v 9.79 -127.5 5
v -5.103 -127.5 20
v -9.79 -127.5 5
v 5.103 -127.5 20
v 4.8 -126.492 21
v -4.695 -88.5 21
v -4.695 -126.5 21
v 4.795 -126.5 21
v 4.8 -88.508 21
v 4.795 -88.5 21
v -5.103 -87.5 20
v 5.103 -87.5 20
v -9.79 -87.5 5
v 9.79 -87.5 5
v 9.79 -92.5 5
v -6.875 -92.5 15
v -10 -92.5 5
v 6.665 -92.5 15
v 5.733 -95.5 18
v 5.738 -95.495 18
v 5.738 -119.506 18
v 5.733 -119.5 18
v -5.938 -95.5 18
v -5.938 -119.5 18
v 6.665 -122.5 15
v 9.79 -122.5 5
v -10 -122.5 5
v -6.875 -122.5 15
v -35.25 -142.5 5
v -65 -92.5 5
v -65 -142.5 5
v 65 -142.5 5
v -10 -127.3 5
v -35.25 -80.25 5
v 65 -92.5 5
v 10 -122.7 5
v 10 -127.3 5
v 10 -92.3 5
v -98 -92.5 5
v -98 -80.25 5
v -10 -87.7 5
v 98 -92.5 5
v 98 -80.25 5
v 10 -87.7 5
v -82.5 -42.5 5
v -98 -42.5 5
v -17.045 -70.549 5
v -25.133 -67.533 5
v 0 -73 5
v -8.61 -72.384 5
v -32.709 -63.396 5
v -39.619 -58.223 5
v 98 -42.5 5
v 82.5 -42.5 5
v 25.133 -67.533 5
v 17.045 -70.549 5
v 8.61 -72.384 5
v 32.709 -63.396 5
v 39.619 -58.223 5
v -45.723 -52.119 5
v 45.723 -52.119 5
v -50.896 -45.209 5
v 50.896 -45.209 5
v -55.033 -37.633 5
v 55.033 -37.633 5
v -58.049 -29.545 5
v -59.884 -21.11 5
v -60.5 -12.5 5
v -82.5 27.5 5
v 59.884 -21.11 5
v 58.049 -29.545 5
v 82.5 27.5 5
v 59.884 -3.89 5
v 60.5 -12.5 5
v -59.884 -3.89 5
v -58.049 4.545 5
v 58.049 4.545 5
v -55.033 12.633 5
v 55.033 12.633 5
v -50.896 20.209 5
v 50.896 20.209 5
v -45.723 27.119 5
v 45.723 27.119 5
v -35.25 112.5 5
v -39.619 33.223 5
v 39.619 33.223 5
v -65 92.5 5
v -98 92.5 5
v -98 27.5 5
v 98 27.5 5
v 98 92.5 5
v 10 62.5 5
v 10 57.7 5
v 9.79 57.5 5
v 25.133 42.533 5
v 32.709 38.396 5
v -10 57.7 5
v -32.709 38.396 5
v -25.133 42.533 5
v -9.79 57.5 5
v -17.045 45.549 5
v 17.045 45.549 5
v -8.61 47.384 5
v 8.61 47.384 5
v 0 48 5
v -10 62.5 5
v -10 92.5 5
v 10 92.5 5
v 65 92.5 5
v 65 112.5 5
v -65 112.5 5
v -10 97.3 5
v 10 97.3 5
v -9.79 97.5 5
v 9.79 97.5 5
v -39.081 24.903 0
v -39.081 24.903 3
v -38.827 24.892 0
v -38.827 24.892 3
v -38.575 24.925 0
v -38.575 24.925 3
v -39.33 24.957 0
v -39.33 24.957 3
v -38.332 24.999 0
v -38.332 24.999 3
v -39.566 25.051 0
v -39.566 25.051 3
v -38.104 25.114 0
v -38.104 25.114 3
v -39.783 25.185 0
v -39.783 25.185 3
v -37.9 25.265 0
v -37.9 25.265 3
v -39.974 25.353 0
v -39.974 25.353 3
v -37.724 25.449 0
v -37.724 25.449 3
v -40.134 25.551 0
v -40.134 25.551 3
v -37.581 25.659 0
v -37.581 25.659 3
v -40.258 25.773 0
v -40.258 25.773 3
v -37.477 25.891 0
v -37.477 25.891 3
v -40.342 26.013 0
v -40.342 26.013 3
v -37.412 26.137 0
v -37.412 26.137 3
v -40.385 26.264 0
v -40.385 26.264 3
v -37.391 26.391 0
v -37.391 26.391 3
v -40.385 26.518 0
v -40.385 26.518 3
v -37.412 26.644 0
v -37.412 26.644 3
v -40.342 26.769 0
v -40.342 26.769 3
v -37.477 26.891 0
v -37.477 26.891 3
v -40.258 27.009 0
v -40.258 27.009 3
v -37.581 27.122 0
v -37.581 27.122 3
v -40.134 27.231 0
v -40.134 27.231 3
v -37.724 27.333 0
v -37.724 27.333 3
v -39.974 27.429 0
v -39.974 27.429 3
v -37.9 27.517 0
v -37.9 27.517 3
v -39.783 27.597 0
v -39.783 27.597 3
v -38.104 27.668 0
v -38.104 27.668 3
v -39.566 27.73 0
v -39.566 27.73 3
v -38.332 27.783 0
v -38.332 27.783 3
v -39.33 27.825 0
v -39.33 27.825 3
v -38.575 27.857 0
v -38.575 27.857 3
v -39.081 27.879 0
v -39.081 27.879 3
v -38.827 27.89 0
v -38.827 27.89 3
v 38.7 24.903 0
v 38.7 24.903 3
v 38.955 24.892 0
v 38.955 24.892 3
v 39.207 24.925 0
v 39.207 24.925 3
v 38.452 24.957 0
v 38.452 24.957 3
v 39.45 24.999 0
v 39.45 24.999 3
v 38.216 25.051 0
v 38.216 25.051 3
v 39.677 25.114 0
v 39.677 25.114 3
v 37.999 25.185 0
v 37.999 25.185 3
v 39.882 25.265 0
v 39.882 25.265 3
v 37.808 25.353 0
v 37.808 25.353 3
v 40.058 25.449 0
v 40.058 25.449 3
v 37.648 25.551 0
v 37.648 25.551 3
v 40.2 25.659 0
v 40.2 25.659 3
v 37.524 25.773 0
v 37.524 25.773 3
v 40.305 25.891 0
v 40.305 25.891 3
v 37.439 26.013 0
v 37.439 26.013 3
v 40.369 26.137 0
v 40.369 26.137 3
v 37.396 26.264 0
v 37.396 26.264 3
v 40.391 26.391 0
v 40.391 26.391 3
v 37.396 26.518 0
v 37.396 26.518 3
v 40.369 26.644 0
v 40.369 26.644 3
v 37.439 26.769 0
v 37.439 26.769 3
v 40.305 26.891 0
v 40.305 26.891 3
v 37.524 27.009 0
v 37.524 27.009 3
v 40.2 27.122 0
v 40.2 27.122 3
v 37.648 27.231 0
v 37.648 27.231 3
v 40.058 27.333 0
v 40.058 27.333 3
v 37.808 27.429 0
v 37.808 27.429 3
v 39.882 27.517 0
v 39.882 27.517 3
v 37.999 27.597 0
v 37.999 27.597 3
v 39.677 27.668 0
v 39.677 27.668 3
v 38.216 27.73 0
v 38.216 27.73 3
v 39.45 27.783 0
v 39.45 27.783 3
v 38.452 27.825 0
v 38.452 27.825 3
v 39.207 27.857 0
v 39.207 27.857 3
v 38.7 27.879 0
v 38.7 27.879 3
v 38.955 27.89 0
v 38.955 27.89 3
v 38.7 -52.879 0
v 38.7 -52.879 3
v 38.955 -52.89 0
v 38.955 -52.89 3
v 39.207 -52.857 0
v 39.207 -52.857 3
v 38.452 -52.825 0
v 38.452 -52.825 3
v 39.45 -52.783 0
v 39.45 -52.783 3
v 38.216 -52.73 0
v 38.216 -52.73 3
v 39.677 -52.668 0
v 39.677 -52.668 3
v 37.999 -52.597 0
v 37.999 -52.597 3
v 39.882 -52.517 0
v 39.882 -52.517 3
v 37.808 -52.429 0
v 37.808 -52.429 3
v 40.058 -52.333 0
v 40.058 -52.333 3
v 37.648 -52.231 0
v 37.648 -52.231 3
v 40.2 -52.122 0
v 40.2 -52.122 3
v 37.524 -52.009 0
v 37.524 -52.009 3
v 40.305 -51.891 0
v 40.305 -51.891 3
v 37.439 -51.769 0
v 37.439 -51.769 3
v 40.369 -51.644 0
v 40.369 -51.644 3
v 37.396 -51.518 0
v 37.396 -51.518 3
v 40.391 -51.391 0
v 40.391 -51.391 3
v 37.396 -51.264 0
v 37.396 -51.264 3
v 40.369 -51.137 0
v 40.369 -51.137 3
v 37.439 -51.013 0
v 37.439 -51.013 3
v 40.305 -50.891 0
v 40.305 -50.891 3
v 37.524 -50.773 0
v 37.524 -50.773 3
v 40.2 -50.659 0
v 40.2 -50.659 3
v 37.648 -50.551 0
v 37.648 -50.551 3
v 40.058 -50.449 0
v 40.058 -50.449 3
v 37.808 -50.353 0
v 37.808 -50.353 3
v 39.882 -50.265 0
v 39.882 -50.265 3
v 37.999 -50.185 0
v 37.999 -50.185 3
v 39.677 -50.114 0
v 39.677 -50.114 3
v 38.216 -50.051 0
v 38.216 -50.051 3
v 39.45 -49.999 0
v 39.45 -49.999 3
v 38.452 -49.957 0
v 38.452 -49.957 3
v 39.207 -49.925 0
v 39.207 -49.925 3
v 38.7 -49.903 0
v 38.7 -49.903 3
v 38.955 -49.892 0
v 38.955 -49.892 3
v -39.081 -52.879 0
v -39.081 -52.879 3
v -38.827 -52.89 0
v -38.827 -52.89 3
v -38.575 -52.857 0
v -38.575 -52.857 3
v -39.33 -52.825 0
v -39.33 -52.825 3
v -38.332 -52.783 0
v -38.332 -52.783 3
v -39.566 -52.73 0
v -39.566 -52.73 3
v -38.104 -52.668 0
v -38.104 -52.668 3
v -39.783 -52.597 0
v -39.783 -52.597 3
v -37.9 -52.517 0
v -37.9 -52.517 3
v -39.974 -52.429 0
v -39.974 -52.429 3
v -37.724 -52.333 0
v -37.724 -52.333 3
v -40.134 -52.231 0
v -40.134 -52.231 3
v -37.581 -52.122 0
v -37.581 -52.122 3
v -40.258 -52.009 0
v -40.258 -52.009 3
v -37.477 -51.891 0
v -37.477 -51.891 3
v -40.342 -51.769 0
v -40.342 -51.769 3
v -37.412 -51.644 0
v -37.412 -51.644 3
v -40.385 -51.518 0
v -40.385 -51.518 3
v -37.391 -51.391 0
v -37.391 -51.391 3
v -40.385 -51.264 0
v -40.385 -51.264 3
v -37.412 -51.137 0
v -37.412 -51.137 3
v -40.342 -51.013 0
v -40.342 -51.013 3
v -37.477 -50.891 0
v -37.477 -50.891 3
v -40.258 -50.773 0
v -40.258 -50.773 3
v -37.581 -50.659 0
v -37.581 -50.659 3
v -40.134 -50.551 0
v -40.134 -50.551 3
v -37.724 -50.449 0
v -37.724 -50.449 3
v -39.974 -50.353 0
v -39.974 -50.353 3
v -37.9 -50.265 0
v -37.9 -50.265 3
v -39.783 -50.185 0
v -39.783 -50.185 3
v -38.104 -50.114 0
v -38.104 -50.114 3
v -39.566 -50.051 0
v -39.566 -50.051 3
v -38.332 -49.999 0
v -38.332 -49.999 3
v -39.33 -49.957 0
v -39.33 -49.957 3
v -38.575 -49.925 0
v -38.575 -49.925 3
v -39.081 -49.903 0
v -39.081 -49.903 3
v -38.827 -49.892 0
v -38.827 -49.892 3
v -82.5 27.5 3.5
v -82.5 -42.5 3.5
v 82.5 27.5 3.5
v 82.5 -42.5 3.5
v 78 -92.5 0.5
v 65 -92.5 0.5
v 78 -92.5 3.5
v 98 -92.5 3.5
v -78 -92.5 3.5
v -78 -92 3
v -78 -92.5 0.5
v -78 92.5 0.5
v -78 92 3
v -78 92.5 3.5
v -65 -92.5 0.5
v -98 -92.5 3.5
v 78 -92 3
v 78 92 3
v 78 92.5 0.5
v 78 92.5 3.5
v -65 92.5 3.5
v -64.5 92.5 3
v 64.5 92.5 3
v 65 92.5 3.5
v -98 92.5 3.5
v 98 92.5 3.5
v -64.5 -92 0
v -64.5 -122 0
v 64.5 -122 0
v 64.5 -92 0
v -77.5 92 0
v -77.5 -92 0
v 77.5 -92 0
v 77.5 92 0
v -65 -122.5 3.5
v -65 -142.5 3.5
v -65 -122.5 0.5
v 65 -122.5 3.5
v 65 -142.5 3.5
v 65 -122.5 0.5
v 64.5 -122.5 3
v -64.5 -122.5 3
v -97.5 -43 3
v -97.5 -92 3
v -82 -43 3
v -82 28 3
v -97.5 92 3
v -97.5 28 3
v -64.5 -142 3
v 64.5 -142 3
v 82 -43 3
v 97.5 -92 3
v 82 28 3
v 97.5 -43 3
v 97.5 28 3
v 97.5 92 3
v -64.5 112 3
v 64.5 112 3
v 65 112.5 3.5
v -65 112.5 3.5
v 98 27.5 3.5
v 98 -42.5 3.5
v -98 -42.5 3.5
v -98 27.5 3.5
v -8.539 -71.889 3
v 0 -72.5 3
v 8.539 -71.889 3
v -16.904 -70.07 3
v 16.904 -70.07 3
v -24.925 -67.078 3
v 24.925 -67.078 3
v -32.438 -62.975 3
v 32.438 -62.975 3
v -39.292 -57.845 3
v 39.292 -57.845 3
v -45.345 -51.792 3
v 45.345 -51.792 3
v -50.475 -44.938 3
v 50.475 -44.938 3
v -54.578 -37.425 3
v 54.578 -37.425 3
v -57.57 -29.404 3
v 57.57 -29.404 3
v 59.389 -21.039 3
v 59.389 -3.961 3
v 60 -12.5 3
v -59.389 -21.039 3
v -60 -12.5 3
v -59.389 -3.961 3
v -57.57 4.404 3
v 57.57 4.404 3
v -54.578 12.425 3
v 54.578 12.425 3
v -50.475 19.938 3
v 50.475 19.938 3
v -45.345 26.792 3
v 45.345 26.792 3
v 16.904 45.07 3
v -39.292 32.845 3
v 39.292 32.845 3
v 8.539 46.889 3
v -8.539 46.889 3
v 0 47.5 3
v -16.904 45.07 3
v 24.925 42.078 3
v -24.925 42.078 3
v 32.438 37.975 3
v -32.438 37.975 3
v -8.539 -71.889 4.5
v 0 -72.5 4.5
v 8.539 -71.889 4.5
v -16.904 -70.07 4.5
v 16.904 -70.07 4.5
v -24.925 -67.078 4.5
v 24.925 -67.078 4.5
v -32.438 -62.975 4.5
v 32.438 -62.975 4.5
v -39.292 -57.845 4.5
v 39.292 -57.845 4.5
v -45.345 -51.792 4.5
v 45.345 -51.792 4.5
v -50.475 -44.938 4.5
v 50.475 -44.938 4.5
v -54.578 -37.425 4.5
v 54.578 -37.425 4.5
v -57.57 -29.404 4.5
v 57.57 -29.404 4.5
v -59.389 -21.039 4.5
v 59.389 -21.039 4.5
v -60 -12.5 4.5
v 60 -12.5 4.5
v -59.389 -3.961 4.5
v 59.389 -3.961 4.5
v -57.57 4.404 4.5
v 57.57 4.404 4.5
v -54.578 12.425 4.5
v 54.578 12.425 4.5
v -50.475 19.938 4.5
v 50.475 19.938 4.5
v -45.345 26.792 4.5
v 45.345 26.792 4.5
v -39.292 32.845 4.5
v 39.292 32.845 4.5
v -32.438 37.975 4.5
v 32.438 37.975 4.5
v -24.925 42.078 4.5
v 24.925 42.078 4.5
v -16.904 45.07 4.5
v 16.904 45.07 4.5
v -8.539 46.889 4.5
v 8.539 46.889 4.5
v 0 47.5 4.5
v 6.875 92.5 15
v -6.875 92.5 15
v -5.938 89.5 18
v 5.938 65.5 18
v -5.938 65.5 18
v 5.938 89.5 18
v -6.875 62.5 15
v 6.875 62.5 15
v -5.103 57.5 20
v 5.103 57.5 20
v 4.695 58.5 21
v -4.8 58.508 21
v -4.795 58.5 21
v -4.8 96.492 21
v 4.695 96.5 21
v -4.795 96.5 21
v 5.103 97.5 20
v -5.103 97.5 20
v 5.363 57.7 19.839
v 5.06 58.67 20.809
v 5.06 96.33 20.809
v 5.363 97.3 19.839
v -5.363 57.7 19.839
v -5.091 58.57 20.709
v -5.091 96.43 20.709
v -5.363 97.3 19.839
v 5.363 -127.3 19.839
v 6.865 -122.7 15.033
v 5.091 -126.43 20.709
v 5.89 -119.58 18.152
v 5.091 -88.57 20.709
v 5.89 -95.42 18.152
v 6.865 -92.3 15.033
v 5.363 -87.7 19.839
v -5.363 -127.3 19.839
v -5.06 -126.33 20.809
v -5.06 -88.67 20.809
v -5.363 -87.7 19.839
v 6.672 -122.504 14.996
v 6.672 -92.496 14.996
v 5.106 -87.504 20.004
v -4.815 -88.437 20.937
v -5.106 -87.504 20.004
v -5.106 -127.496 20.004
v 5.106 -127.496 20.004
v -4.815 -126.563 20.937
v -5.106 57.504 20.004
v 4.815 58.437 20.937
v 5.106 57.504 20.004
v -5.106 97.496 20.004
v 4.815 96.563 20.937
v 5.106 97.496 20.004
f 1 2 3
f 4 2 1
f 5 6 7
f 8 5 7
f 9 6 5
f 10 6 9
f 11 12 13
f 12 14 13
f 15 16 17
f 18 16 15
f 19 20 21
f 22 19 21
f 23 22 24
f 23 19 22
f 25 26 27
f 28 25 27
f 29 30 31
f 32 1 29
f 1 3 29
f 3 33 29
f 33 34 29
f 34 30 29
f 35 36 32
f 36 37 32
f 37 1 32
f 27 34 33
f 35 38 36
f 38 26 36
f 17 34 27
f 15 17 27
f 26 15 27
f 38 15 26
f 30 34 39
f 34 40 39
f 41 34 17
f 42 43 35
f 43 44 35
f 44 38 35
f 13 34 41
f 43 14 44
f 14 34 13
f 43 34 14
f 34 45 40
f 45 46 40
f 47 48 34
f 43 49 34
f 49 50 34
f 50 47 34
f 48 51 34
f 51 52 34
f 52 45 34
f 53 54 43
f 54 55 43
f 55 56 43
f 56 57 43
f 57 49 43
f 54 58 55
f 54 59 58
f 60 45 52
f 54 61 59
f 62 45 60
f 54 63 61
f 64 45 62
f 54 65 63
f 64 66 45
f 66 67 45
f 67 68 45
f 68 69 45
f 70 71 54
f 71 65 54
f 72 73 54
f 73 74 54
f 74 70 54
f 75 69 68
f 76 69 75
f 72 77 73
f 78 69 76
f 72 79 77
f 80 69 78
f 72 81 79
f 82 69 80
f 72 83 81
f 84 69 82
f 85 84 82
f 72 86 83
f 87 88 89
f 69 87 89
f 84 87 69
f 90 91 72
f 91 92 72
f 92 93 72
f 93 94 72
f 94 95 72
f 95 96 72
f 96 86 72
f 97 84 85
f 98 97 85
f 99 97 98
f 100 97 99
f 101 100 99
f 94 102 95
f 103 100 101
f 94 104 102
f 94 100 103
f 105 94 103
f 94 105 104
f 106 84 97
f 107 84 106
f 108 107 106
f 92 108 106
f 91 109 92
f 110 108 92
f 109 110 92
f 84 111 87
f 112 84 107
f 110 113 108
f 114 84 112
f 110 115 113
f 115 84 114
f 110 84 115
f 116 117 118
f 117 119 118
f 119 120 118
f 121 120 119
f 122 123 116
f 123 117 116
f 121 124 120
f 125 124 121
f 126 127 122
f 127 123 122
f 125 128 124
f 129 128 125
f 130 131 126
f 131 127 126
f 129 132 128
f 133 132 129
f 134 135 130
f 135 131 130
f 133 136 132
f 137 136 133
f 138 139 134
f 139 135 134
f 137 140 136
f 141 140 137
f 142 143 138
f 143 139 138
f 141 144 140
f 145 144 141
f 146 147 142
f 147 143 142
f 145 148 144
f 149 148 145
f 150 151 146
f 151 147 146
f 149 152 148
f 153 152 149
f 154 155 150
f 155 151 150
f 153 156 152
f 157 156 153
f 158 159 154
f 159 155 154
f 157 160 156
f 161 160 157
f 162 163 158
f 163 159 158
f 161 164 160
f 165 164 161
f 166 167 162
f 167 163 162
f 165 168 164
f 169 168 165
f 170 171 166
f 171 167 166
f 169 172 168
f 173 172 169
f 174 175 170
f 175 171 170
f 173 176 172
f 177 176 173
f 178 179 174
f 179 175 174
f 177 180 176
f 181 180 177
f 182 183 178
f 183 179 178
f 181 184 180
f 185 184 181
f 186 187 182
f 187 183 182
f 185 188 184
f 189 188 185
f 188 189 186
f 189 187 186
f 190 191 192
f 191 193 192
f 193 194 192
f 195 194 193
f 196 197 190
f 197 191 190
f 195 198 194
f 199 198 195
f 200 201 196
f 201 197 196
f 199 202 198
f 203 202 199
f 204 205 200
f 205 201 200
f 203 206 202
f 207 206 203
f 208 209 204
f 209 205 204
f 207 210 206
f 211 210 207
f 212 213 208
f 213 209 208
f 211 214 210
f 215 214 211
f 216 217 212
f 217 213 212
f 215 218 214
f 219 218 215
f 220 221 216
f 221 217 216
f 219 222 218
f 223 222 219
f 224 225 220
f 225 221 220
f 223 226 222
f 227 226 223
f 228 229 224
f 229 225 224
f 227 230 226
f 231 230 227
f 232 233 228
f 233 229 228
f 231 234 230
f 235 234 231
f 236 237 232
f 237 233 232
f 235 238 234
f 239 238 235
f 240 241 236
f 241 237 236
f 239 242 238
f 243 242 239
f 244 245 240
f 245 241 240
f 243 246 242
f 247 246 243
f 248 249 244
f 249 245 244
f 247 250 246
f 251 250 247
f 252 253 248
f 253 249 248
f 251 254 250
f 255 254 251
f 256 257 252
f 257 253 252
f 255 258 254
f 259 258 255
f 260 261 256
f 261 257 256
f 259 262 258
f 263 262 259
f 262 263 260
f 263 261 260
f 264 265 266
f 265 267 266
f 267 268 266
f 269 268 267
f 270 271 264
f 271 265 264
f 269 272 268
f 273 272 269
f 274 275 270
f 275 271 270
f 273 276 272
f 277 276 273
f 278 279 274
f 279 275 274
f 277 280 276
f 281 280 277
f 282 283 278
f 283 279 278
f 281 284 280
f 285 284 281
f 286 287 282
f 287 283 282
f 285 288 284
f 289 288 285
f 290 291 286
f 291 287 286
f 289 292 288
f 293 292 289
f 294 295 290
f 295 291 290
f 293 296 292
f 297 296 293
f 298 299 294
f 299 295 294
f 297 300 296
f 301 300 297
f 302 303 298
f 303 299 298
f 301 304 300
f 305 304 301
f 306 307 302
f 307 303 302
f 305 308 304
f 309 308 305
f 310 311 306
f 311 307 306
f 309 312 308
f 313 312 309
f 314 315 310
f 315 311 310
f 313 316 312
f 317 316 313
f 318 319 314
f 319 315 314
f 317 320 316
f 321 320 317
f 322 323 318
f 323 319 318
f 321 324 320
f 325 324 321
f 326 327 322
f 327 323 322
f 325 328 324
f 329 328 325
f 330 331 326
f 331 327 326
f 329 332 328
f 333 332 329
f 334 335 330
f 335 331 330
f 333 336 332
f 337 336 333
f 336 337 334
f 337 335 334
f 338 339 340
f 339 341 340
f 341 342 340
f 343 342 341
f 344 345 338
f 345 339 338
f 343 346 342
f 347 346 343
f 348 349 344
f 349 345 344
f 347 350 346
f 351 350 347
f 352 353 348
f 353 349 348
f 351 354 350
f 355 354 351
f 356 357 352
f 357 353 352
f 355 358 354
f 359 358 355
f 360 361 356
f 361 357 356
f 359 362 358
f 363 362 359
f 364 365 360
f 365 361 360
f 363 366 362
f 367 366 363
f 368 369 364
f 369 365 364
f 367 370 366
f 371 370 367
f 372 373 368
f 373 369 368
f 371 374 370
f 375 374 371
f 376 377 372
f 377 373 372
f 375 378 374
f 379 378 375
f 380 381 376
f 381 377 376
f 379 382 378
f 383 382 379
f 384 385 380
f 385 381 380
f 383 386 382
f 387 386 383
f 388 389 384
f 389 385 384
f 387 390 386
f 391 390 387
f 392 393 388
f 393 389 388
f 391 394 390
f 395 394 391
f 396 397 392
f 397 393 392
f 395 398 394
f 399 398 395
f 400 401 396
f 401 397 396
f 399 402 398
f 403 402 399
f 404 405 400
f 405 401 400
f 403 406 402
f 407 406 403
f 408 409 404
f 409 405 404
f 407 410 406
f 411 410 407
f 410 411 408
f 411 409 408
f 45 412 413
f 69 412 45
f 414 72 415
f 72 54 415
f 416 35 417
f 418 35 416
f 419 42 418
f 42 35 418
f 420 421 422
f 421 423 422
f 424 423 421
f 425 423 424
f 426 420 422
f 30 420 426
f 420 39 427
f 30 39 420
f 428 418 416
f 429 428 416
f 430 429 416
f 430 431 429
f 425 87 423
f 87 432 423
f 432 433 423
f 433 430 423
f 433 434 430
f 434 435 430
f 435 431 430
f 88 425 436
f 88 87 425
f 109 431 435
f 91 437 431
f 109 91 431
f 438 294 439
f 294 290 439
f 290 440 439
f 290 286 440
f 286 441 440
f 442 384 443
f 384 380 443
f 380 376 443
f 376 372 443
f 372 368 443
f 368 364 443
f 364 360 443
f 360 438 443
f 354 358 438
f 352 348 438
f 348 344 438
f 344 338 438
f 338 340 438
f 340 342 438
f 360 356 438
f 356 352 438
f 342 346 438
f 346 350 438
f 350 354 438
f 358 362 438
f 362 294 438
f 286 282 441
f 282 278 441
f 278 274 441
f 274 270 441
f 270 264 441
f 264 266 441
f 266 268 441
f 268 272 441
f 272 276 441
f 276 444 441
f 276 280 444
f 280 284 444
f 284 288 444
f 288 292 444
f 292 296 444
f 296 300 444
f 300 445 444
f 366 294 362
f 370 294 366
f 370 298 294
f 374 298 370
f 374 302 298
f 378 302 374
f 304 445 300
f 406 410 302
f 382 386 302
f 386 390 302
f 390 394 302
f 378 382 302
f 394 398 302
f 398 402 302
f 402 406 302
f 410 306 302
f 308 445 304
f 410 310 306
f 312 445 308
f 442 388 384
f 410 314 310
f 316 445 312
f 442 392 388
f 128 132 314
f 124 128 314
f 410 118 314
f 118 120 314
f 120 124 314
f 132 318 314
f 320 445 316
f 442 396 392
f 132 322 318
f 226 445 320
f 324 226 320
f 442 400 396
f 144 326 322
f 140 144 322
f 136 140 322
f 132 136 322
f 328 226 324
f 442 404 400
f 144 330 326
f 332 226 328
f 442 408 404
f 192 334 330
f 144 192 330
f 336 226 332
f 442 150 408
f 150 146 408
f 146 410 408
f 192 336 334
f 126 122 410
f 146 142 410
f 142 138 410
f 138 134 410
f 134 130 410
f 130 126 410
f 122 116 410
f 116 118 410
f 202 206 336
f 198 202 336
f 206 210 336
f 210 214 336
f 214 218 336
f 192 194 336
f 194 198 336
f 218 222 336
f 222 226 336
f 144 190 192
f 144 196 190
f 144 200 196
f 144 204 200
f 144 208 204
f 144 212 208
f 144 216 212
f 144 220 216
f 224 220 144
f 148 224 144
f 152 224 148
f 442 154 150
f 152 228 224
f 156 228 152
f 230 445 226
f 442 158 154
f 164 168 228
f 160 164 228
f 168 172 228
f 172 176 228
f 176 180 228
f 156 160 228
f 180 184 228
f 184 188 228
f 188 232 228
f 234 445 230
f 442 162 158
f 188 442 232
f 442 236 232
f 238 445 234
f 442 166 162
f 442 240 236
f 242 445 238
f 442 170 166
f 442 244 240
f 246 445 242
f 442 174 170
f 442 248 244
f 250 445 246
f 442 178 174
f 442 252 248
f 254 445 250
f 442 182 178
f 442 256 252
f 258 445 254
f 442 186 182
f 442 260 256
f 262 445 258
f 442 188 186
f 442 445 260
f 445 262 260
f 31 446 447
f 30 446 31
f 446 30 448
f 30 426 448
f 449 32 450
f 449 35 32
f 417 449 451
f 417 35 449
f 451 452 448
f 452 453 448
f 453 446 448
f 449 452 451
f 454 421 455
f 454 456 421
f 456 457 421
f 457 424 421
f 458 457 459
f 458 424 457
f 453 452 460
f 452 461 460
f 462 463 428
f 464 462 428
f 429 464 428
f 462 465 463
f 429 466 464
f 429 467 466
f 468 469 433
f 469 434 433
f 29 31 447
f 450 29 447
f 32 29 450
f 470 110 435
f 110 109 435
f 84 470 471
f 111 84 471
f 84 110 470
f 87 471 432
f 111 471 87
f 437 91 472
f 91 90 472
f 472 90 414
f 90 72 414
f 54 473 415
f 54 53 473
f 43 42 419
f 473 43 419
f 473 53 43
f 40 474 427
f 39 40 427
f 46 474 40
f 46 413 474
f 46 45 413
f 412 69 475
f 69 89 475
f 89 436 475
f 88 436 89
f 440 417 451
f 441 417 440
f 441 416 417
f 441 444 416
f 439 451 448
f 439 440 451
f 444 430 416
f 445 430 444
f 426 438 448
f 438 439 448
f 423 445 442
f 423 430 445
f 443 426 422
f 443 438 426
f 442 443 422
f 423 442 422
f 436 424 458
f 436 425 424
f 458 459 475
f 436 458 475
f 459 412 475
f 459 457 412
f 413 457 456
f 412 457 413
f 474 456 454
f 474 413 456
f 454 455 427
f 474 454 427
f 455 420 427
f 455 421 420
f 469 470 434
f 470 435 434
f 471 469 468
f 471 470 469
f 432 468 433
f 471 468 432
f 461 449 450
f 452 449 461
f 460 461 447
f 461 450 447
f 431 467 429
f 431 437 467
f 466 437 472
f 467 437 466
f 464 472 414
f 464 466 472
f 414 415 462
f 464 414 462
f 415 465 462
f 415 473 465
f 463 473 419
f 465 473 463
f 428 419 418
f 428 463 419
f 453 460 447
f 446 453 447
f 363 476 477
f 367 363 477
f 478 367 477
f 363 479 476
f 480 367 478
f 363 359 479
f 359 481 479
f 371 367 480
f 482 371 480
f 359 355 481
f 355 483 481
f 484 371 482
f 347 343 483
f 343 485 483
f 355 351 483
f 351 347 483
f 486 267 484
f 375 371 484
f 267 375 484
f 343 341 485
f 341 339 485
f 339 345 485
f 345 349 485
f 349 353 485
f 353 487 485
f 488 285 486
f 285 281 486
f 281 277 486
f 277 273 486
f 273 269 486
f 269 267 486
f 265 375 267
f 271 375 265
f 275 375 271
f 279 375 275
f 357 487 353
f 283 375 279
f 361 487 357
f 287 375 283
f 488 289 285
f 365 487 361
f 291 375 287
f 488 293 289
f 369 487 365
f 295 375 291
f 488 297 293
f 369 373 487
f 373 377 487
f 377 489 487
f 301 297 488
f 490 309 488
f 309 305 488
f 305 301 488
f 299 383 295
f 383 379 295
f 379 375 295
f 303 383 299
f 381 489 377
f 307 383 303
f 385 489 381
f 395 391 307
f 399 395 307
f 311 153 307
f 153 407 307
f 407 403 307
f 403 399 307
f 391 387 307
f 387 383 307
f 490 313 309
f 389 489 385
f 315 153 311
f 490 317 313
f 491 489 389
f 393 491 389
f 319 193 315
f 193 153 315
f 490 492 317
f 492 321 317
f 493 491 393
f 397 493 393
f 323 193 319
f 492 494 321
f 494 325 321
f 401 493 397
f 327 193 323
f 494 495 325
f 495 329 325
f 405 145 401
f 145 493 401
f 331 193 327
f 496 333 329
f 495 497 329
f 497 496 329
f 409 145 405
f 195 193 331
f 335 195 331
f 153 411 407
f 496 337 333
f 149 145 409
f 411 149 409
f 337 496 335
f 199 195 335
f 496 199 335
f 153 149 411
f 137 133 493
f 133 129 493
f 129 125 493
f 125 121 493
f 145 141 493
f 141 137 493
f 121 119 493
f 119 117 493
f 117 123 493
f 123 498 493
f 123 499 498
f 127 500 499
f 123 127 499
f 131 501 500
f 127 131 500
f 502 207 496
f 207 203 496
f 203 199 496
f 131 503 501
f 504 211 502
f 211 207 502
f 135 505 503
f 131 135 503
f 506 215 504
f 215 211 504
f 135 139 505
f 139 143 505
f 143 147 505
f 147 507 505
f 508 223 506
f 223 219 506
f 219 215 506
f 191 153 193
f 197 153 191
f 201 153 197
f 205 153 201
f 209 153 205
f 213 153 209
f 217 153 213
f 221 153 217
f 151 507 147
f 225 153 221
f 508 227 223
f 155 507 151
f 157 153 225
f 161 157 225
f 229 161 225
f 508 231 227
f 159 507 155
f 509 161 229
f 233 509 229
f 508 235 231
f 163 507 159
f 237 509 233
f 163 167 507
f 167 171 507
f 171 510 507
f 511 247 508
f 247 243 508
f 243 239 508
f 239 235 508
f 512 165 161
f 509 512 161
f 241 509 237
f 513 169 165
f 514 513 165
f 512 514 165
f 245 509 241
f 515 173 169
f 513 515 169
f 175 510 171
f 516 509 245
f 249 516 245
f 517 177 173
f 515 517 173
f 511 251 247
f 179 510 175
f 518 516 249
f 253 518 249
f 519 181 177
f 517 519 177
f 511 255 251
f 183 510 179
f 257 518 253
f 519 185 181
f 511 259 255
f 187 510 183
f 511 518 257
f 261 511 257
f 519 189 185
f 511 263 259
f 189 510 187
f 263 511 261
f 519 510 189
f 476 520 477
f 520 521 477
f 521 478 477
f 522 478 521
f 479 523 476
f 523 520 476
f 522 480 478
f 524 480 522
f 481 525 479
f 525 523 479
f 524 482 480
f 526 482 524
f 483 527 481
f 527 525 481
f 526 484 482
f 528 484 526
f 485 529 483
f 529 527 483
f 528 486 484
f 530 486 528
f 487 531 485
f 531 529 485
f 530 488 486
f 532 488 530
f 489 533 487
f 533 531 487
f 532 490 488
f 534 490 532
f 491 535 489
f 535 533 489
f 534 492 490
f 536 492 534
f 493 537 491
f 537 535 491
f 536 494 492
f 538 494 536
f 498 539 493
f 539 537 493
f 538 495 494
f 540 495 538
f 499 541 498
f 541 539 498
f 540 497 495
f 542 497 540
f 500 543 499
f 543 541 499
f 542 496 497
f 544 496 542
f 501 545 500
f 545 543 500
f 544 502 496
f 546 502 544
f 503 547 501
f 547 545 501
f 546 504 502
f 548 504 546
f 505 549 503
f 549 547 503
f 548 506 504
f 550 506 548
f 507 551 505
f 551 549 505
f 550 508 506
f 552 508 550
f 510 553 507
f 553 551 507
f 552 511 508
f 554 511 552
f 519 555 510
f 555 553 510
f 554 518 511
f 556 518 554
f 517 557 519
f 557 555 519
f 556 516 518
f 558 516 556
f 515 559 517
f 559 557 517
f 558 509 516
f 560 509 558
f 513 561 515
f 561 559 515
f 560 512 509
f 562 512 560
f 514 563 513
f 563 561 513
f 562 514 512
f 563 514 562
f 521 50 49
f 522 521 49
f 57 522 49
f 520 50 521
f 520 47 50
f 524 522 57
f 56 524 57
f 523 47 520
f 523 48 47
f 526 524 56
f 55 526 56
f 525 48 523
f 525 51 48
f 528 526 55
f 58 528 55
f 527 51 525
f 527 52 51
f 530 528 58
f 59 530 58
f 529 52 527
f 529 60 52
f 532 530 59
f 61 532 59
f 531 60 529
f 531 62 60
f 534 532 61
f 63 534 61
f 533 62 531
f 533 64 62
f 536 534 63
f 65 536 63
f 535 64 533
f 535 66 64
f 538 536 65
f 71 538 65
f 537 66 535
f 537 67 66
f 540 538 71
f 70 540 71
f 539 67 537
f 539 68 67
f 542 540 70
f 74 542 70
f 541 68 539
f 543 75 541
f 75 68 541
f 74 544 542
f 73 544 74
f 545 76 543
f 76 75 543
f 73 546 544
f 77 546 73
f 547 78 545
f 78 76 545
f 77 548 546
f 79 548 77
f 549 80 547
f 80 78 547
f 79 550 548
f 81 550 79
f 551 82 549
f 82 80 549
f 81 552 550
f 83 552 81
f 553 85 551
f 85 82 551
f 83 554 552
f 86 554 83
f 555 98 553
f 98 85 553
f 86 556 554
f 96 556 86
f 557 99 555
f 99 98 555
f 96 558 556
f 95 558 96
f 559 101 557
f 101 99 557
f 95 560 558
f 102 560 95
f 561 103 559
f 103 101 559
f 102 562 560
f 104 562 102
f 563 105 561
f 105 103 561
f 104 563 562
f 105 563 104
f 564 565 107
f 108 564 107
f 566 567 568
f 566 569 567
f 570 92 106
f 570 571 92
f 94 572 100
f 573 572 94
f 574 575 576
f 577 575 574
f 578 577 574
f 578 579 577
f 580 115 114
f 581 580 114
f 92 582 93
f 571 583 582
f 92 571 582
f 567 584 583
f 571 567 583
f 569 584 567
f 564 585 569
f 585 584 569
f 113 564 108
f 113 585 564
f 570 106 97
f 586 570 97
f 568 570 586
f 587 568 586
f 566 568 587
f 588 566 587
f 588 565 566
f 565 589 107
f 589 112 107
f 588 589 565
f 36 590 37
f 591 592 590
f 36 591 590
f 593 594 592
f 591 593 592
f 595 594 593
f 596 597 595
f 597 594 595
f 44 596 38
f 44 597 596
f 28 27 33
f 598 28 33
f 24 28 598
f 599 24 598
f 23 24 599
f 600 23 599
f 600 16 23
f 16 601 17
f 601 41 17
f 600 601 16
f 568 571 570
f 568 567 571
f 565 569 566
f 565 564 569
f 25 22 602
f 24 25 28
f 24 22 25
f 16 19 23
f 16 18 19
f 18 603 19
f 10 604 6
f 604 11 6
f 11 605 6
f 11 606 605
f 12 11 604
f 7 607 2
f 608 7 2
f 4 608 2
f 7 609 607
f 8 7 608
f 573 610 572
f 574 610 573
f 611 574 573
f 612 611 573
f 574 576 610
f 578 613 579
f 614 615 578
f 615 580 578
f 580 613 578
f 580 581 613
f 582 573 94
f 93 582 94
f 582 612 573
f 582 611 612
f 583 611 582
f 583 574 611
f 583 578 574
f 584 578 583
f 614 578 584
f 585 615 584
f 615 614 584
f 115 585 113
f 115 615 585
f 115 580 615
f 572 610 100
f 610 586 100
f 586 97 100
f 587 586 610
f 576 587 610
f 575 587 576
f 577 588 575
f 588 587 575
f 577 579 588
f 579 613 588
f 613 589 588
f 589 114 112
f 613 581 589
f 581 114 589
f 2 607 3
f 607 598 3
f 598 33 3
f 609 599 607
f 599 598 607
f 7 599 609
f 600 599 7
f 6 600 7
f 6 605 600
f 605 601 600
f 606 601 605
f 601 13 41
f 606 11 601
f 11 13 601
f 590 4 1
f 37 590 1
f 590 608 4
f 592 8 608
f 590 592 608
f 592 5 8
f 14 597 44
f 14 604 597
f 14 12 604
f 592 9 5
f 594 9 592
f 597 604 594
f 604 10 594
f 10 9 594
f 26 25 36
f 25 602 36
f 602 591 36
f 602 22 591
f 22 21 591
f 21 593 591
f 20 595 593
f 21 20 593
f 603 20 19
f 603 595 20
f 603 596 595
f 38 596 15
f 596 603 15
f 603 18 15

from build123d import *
from OCP.BRepFilletAPI import BRepFilletAPI_MakeChamfer

# Parameters (mm, degrees)
SKETCH_1_W          = 156
SKETCH_1_H          = 185
EXTRUDE_1_DEPTH     = 3
SKETCH_2_W          = 130
SKETCH_2_H          = 30
EXTRUDE_2_DEPTH     = 3
EXTRUDE_3_DEPTH     = 2
SKETCH_4_W          = 15.5
SKETCH_4_H          = 50
SKETCH_4_H_2        = 65
EXTRUDE_4_DEPTH     = 2
SKETCH_5_R          = 1.5
CUT_EXTRUDE_1_DEPTH = 174.018062641
CHAMFER_1_SIZE      = 0.5
CHAMFER_2_SIZE      = 0.5
CHAMFER_3_SIZE      = 0.5
SKETCH_6_R          = 60
CUT_EXTRUDE_2_DEPTH = 2
CHAMFER_4_SIZE      = 0.5
EXTRUDE_5_DEPTH     = 10
CUT_EXTRUDE_3_DEPTH = 261.086524065
CHAMFER_5_SIZE      = 3
CHAMFER_6_SIZE      = 1
CHAMFER_7_SIZE      = 0.2
CHAMFER_7_SIZE2     = 0.159648139
CHAMFER_7_SIZE2_2   = 0.168291059
CHAMFER_7_SIZE2_3   = 0.304782811
CHAMFER_7_SIZE2_4   = 0.260894728


with BuildPart() as part:
    # 草图1 → 凸台-拉伸1 (new body)
    with BuildSketch(Plane.XY):
        Rectangle(SKETCH_1_W, SKETCH_1_H)
    extrude(amount=EXTRUDE_1_DEPTH)

    # 草图2 → 凸台-拉伸2 (add)
    with BuildSketch(Plane.XY.offset(3)):
        with Locations((0, -107.5)):
            Rectangle(SKETCH_2_W, SKETCH_2_H)
    extrude(amount=-EXTRUDE_2_DEPTH)

    # 草图3 → 凸台-拉伸3 (add)
    with BuildSketch(Plane.XY.offset(3)):
        Polygon((-82.5, 92.5), (-65, 92.5), (-65, 112.5), (65, 112.5), (65, 92.5), (82.5, 92.5), (82.5, -92.5), (65, -92.5), (65, -142.5), (-65, -142.5), (-65, -92.5), (-82.5, -92.5), align=None)
    extrude(amount=EXTRUDE_3_DEPTH)

    # 草图4 → 凸台-拉伸4 (add)
    with BuildSketch(Plane.XY.offset(5)):
        with Locations((-90.25, -67.5)):
            Rectangle(SKETCH_4_W, SKETCH_4_H)
        with Locations((-90.25, 60)):
            Rectangle(SKETCH_4_W, SKETCH_4_H_2)
        with Locations((90.25, 60)):
            Rectangle(SKETCH_4_W, SKETCH_4_H_2)
        with Locations((90.25, -67.5)):
            Rectangle(SKETCH_4_W, SKETCH_4_H)
    extrude(amount=-EXTRUDE_4_DEPTH)

    # 草图5 → 切除-拉伸1 (cut, through all)
    with BuildSketch(Plane.XY.offset(5)):
        with Locations((-38.890872965, 26.390872965)):
            Circle(SKETCH_5_R)
        with Locations((38.890872965, 26.390872965)):
            Circle(SKETCH_5_R)
        with Locations((38.890872965, -51.390872965)):
            Circle(SKETCH_5_R)
        with Locations((-38.890872965, -51.390872965)):
            Circle(SKETCH_5_R)
    extrude(amount=-CUT_EXTRUDE_1_DEPTH, mode=Mode.SUBTRACT)

    # 倒角1
    chamfer_1_edges = [part.edges().sort_by_distance(p)[0] for p in [
        (71.5, -92.5, 0),
        (-65, -107.5, 0),
        (65, -107.5, 0),
        (0, -122.5, 0),
        (0, 92.5, 0),
        (78, 0, 0),
        (-71.5, -92.5, 0),
        (-78, 0, 0),
    ]]
    chamfer(chamfer_1_edges, length=CHAMFER_1_SIZE)

    # 倒角2
    chamfer_2_edges = [part.edges().sort_by_distance(p)[0] for p in [
        (-88, 92.5, 3),
        (88, 92.5, 3),
        (-82.5, -7.5, 3),
        (-90.25, 27.5, 3),
        (-98, 60, 3),
        (-88, -92.5, 3),
        (-98, -67.5, 3),
        (-90.25, -42.5, 3),
        (98, 60, 3),
        (90.25, 27.5, 3),
        (82.5, -7.5, 3),
        (90.25, -42.5, 3),
        (98, -67.5, 3),
        (88, -92.5, 3),
        (-65, 102.5, 3),
        (65, 102.5, 3),
        (0, 112.5, 3),
        (0, -142.5, 3),
        (65, -132.5, 3),
    ]]
    chamfer(chamfer_2_edges, length=CHAMFER_2_SIZE)

    # 倒角3
    chamfer_3_edges = [part.edges().sort_by_distance(p)[0] for p in [
        (-65, -132.25, 3),
    ]]
    chamfer(chamfer_3_edges, length=CHAMFER_3_SIZE)

    # 草图6 → 切除-拉伸2 (cut)
    with BuildSketch(Plane.XY.offset(5)):
        with Locations((0, -12.5)):
            Circle(SKETCH_6_R)
    extrude(amount=-CUT_EXTRUDE_2_DEPTH, mode=Mode.SUBTRACT)

    # 倒角4
    chamfer_4_edges = [part.edges().sort_by_distance(p)[0] for p in [
        (-60, -12.5, 5),
    ]]
    chamfer(chamfer_4_edges, length=CHAMFER_4_SIZE)

    # 草图7 → 凸台-拉伸5 (add, symmetric)
    with BuildSketch(Plane(origin=(0, 0, 0), x_dir=(0, 0, -1), z_dir=(1, 0, 0))):
        Polygon((-5, 97.5), (-21, 97.5), (-21, 57.5), (-5, 57.5), (-5, 62.5), (-18, 62.5), (-18, 92.5), (-5, 92.5), align=None)
    extrude_5 = extrude(amount=EXTRUDE_5_DEPTH, both=True)

    # 草图8 → 切除-拉伸3 (cut, through all)
    with BuildSketch(Plane(origin=(0, 97.5, 0), x_dir=(1, 0, 0), z_dir=(0, 1, 0))):
        Polygon((-10, -5), (-5, -21), (-10, -21), align=None)
        Polygon((10, -5), (10, -21), (5, -21), align=None)
    cut_extrude_3 = extrude(amount=-CUT_EXTRUDE_3_DEPTH, mode=Mode.SUBTRACT)

    # 镜向2: 凸台-拉伸5, 切除-拉伸3 across plane
    add(extrude_5.mirror(Plane(origin=(0, -15, 0), x_dir=(0, 0, 1), z_dir=(0, -1, 0))))
    add(cut_extrude_3.mirror(Plane(origin=(0, -15, 0), x_dir=(0, 0, 1), z_dir=(0, -1, 0))), mode=Mode.SUBTRACT)

    # 倒角5
    chamfer_5_edges = [part.edges().sort_by_distance(p)[0] for p in [
        (0, 62.5, 18),
        (0, 92.5, 18),
        (0, -122.5, 18),
        (0, -92.5, 18),
    ]]
    chamfer(chamfer_5_edges, length=CHAMFER_5_SIZE)

    # 倒角6
    chamfer_6_edges = [part.edges().sort_by_distance(p)[0] for p in [
        (0, 97.5, 21),
        (0, 57.5, 21),
        (0, -87.5, 21),
        (0, -127.5, 21),
    ]]
    chamfer(chamfer_6_edges, length=CHAMFER_6_SIZE)

    # 倒角7: one chamfer whose edges measure the first distance from different faces: ONE call of the kernel's chamfer builder (chamfer() names one face for all edges)
    chamfer_7_edges_1 = [part.edges().sort_by_distance(p)[0] for p in [
        (-7.65625, 57.5, 12.5),
        (7.65625, 97.5, 12.5),
        (7.65625, -87.5, 12.5),
        (7.65625, -127.5, 12.5),
        (8.4375, -122.5, 10),
        (8.4375, -92.5, 10),
        (-7.65625, -87.5, 12.5),
        (-7.65625, -127.5, 12.5),
        (7.65625, 57.5, 12.5),
        (-7.65625, 97.5, 12.5),
    ]]
    chamfer_7_edges_2 = [part.edges().sort_by_distance(p)[0] for p in [
        (5.9375, -107.5, 18),
    ]]
    chamfer_7_side_2 = [part.faces().sort_by_distance(p)[0] for p in [
        (0, -107.5, 18),
    ]]
    chamfer_7_edges_3 = [part.edges().sort_by_distance(p)[0] for p in [
        (6.40625, -121, 16.5),
    ]]
    chamfer_7_side_3 = [part.faces().sort_by_distance(p)[0] for p in [
        (0, -121.036585366, 16.463414634),
    ]]
    chamfer_7_edges_4 = [part.edges().sort_by_distance(p)[0] for p in [
        (6.40625, -94, 16.5),
    ]]
    chamfer_7_side_4 = [part.faces().sort_by_distance(p)[0] for p in [
        (0, -93.963414634, 16.463414634),
    ]]
    chamfer_7_edges_5 = [part.edges().sort_by_distance(p)[0] for p in [
        (5, -107.5, 21),
    ]]
    chamfer_7_side_5 = [part.faces().sort_by_distance(p)[0] for p in [
        (0, -107.5, 21),
    ]]
    chamfer_7_edges_6 = [part.edges().sort_by_distance(p)[0] for p in [
        (5.15625, -127, 20.5),
        (-5.15625, -127, 20.5),
    ]]
    chamfer_7_side_6 = [part.faces().sort_by_distance(p)[0] for p in [
        (0, -127.005050505, 20.494949495),
    ]]
    chamfer_7_edges_7 = [part.edges().sort_by_distance(p)[0] for p in [
        (5.15625, -88, 20.5),
        (-5.15625, -88, 20.5),
    ]]
    chamfer_7_side_7 = [part.faces().sort_by_distance(p)[0] for p in [
        (0, -87.994949495, 20.494949495),
    ]]
    chamfer_7_edges_8 = [part.edges().sort_by_distance(p)[0] for p in [
        (-5, -107.5, 21),
    ]]
    chamfer_7_side_8 = [part.faces().sort_by_distance(p)[0] for p in [
        (-7.65625, -87.933704969, 12.5),
    ]]
    chamfer_7_edges_9 = [part.edges().sort_by_distance(p)[0] for p in [
        (-5, 77.5, 21),
    ]]
    chamfer_7_side_9 = [part.faces().sort_by_distance(p)[0] for p in [
        (0, 77.5, 21),
    ]]
    chamfer_7_edges_10 = [part.edges().sort_by_distance(p)[0] for p in [
        (5, 77.5, 21),
    ]]
    chamfer_7_side_10 = [part.faces().sort_by_distance(p)[0] for p in [
        (7.65625, 97.066295031, 12.5),
    ]]
    chamfer_7_edges_11 = [part.edges().sort_by_distance(p)[0] for p in [
        (5.15625, 97, 20.5),
        (-5.15625, 97, 20.5),
    ]]
    chamfer_7_side_11 = [part.faces().sort_by_distance(p)[0] for p in [
        (0, 97.005050505, 20.494949495),
    ]]
    chamfer_7_edges_12 = [part.edges().sort_by_distance(p)[0] for p in [
        (5.15625, 58, 20.5),
        (-5.15625, 58, 20.5),
    ]]
    chamfer_7_side_12 = [part.faces().sort_by_distance(p)[0] for p in [
        (0, 57.994949495, 20.494949495),
    ]]
    chamfer_7 = BRepFilletAPI_MakeChamfer(part.part.solid().wrapped)
    for e in chamfer_7_edges_1:
        chamfer_7.Add(CHAMFER_7_SIZE, e.wrapped)
    for e in chamfer_7_edges_2:
        chamfer_7.Add(CHAMFER_7_SIZE, CHAMFER_7_SIZE2, e.wrapped, chamfer_7_side_2[0].wrapped)  # the first distance lies on this face
    for e in chamfer_7_edges_3:
        chamfer_7.Add(CHAMFER_7_SIZE, CHAMFER_7_SIZE2_2, e.wrapped, chamfer_7_side_3[0].wrapped)  # the first distance lies on this face
    for e in chamfer_7_edges_4:
        chamfer_7.Add(CHAMFER_7_SIZE, CHAMFER_7_SIZE2_2, e.wrapped, chamfer_7_side_4[0].wrapped)  # the first distance lies on this face
    for e in chamfer_7_edges_5:
        chamfer_7.Add(CHAMFER_7_SIZE, CHAMFER_7_SIZE2_3, e.wrapped, chamfer_7_side_5[0].wrapped)  # the first distance lies on this face
    for e in chamfer_7_edges_6:
        chamfer_7.Add(CHAMFER_7_SIZE, CHAMFER_7_SIZE2_4, e.wrapped, chamfer_7_side_6[0].wrapped)  # the first distance lies on this face
    for e in chamfer_7_edges_7:
        chamfer_7.Add(CHAMFER_7_SIZE, CHAMFER_7_SIZE2_4, e.wrapped, chamfer_7_side_7[0].wrapped)  # the first distance lies on this face
    for e in chamfer_7_edges_8:
        chamfer_7.Add(CHAMFER_7_SIZE, CHAMFER_7_SIZE2_3, e.wrapped, chamfer_7_side_8[0].wrapped)  # the first distance lies on this face
    for e in chamfer_7_edges_9:
        chamfer_7.Add(CHAMFER_7_SIZE, CHAMFER_7_SIZE2_3, e.wrapped, chamfer_7_side_9[0].wrapped)  # the first distance lies on this face
    for e in chamfer_7_edges_10:
        chamfer_7.Add(CHAMFER_7_SIZE, CHAMFER_7_SIZE2_3, e.wrapped, chamfer_7_side_10[0].wrapped)  # the first distance lies on this face
    for e in chamfer_7_edges_11:
        chamfer_7.Add(CHAMFER_7_SIZE, CHAMFER_7_SIZE2_4, e.wrapped, chamfer_7_side_11[0].wrapped)  # the first distance lies on this face
    for e in chamfer_7_edges_12:
        chamfer_7.Add(CHAMFER_7_SIZE, CHAMFER_7_SIZE2_4, e.wrapped, chamfer_7_side_12[0].wrapped)  # the first distance lies on this face
    add(Compound.cast(chamfer_7.Shape()), mode=Mode.REPLACE)


solid = part.part
